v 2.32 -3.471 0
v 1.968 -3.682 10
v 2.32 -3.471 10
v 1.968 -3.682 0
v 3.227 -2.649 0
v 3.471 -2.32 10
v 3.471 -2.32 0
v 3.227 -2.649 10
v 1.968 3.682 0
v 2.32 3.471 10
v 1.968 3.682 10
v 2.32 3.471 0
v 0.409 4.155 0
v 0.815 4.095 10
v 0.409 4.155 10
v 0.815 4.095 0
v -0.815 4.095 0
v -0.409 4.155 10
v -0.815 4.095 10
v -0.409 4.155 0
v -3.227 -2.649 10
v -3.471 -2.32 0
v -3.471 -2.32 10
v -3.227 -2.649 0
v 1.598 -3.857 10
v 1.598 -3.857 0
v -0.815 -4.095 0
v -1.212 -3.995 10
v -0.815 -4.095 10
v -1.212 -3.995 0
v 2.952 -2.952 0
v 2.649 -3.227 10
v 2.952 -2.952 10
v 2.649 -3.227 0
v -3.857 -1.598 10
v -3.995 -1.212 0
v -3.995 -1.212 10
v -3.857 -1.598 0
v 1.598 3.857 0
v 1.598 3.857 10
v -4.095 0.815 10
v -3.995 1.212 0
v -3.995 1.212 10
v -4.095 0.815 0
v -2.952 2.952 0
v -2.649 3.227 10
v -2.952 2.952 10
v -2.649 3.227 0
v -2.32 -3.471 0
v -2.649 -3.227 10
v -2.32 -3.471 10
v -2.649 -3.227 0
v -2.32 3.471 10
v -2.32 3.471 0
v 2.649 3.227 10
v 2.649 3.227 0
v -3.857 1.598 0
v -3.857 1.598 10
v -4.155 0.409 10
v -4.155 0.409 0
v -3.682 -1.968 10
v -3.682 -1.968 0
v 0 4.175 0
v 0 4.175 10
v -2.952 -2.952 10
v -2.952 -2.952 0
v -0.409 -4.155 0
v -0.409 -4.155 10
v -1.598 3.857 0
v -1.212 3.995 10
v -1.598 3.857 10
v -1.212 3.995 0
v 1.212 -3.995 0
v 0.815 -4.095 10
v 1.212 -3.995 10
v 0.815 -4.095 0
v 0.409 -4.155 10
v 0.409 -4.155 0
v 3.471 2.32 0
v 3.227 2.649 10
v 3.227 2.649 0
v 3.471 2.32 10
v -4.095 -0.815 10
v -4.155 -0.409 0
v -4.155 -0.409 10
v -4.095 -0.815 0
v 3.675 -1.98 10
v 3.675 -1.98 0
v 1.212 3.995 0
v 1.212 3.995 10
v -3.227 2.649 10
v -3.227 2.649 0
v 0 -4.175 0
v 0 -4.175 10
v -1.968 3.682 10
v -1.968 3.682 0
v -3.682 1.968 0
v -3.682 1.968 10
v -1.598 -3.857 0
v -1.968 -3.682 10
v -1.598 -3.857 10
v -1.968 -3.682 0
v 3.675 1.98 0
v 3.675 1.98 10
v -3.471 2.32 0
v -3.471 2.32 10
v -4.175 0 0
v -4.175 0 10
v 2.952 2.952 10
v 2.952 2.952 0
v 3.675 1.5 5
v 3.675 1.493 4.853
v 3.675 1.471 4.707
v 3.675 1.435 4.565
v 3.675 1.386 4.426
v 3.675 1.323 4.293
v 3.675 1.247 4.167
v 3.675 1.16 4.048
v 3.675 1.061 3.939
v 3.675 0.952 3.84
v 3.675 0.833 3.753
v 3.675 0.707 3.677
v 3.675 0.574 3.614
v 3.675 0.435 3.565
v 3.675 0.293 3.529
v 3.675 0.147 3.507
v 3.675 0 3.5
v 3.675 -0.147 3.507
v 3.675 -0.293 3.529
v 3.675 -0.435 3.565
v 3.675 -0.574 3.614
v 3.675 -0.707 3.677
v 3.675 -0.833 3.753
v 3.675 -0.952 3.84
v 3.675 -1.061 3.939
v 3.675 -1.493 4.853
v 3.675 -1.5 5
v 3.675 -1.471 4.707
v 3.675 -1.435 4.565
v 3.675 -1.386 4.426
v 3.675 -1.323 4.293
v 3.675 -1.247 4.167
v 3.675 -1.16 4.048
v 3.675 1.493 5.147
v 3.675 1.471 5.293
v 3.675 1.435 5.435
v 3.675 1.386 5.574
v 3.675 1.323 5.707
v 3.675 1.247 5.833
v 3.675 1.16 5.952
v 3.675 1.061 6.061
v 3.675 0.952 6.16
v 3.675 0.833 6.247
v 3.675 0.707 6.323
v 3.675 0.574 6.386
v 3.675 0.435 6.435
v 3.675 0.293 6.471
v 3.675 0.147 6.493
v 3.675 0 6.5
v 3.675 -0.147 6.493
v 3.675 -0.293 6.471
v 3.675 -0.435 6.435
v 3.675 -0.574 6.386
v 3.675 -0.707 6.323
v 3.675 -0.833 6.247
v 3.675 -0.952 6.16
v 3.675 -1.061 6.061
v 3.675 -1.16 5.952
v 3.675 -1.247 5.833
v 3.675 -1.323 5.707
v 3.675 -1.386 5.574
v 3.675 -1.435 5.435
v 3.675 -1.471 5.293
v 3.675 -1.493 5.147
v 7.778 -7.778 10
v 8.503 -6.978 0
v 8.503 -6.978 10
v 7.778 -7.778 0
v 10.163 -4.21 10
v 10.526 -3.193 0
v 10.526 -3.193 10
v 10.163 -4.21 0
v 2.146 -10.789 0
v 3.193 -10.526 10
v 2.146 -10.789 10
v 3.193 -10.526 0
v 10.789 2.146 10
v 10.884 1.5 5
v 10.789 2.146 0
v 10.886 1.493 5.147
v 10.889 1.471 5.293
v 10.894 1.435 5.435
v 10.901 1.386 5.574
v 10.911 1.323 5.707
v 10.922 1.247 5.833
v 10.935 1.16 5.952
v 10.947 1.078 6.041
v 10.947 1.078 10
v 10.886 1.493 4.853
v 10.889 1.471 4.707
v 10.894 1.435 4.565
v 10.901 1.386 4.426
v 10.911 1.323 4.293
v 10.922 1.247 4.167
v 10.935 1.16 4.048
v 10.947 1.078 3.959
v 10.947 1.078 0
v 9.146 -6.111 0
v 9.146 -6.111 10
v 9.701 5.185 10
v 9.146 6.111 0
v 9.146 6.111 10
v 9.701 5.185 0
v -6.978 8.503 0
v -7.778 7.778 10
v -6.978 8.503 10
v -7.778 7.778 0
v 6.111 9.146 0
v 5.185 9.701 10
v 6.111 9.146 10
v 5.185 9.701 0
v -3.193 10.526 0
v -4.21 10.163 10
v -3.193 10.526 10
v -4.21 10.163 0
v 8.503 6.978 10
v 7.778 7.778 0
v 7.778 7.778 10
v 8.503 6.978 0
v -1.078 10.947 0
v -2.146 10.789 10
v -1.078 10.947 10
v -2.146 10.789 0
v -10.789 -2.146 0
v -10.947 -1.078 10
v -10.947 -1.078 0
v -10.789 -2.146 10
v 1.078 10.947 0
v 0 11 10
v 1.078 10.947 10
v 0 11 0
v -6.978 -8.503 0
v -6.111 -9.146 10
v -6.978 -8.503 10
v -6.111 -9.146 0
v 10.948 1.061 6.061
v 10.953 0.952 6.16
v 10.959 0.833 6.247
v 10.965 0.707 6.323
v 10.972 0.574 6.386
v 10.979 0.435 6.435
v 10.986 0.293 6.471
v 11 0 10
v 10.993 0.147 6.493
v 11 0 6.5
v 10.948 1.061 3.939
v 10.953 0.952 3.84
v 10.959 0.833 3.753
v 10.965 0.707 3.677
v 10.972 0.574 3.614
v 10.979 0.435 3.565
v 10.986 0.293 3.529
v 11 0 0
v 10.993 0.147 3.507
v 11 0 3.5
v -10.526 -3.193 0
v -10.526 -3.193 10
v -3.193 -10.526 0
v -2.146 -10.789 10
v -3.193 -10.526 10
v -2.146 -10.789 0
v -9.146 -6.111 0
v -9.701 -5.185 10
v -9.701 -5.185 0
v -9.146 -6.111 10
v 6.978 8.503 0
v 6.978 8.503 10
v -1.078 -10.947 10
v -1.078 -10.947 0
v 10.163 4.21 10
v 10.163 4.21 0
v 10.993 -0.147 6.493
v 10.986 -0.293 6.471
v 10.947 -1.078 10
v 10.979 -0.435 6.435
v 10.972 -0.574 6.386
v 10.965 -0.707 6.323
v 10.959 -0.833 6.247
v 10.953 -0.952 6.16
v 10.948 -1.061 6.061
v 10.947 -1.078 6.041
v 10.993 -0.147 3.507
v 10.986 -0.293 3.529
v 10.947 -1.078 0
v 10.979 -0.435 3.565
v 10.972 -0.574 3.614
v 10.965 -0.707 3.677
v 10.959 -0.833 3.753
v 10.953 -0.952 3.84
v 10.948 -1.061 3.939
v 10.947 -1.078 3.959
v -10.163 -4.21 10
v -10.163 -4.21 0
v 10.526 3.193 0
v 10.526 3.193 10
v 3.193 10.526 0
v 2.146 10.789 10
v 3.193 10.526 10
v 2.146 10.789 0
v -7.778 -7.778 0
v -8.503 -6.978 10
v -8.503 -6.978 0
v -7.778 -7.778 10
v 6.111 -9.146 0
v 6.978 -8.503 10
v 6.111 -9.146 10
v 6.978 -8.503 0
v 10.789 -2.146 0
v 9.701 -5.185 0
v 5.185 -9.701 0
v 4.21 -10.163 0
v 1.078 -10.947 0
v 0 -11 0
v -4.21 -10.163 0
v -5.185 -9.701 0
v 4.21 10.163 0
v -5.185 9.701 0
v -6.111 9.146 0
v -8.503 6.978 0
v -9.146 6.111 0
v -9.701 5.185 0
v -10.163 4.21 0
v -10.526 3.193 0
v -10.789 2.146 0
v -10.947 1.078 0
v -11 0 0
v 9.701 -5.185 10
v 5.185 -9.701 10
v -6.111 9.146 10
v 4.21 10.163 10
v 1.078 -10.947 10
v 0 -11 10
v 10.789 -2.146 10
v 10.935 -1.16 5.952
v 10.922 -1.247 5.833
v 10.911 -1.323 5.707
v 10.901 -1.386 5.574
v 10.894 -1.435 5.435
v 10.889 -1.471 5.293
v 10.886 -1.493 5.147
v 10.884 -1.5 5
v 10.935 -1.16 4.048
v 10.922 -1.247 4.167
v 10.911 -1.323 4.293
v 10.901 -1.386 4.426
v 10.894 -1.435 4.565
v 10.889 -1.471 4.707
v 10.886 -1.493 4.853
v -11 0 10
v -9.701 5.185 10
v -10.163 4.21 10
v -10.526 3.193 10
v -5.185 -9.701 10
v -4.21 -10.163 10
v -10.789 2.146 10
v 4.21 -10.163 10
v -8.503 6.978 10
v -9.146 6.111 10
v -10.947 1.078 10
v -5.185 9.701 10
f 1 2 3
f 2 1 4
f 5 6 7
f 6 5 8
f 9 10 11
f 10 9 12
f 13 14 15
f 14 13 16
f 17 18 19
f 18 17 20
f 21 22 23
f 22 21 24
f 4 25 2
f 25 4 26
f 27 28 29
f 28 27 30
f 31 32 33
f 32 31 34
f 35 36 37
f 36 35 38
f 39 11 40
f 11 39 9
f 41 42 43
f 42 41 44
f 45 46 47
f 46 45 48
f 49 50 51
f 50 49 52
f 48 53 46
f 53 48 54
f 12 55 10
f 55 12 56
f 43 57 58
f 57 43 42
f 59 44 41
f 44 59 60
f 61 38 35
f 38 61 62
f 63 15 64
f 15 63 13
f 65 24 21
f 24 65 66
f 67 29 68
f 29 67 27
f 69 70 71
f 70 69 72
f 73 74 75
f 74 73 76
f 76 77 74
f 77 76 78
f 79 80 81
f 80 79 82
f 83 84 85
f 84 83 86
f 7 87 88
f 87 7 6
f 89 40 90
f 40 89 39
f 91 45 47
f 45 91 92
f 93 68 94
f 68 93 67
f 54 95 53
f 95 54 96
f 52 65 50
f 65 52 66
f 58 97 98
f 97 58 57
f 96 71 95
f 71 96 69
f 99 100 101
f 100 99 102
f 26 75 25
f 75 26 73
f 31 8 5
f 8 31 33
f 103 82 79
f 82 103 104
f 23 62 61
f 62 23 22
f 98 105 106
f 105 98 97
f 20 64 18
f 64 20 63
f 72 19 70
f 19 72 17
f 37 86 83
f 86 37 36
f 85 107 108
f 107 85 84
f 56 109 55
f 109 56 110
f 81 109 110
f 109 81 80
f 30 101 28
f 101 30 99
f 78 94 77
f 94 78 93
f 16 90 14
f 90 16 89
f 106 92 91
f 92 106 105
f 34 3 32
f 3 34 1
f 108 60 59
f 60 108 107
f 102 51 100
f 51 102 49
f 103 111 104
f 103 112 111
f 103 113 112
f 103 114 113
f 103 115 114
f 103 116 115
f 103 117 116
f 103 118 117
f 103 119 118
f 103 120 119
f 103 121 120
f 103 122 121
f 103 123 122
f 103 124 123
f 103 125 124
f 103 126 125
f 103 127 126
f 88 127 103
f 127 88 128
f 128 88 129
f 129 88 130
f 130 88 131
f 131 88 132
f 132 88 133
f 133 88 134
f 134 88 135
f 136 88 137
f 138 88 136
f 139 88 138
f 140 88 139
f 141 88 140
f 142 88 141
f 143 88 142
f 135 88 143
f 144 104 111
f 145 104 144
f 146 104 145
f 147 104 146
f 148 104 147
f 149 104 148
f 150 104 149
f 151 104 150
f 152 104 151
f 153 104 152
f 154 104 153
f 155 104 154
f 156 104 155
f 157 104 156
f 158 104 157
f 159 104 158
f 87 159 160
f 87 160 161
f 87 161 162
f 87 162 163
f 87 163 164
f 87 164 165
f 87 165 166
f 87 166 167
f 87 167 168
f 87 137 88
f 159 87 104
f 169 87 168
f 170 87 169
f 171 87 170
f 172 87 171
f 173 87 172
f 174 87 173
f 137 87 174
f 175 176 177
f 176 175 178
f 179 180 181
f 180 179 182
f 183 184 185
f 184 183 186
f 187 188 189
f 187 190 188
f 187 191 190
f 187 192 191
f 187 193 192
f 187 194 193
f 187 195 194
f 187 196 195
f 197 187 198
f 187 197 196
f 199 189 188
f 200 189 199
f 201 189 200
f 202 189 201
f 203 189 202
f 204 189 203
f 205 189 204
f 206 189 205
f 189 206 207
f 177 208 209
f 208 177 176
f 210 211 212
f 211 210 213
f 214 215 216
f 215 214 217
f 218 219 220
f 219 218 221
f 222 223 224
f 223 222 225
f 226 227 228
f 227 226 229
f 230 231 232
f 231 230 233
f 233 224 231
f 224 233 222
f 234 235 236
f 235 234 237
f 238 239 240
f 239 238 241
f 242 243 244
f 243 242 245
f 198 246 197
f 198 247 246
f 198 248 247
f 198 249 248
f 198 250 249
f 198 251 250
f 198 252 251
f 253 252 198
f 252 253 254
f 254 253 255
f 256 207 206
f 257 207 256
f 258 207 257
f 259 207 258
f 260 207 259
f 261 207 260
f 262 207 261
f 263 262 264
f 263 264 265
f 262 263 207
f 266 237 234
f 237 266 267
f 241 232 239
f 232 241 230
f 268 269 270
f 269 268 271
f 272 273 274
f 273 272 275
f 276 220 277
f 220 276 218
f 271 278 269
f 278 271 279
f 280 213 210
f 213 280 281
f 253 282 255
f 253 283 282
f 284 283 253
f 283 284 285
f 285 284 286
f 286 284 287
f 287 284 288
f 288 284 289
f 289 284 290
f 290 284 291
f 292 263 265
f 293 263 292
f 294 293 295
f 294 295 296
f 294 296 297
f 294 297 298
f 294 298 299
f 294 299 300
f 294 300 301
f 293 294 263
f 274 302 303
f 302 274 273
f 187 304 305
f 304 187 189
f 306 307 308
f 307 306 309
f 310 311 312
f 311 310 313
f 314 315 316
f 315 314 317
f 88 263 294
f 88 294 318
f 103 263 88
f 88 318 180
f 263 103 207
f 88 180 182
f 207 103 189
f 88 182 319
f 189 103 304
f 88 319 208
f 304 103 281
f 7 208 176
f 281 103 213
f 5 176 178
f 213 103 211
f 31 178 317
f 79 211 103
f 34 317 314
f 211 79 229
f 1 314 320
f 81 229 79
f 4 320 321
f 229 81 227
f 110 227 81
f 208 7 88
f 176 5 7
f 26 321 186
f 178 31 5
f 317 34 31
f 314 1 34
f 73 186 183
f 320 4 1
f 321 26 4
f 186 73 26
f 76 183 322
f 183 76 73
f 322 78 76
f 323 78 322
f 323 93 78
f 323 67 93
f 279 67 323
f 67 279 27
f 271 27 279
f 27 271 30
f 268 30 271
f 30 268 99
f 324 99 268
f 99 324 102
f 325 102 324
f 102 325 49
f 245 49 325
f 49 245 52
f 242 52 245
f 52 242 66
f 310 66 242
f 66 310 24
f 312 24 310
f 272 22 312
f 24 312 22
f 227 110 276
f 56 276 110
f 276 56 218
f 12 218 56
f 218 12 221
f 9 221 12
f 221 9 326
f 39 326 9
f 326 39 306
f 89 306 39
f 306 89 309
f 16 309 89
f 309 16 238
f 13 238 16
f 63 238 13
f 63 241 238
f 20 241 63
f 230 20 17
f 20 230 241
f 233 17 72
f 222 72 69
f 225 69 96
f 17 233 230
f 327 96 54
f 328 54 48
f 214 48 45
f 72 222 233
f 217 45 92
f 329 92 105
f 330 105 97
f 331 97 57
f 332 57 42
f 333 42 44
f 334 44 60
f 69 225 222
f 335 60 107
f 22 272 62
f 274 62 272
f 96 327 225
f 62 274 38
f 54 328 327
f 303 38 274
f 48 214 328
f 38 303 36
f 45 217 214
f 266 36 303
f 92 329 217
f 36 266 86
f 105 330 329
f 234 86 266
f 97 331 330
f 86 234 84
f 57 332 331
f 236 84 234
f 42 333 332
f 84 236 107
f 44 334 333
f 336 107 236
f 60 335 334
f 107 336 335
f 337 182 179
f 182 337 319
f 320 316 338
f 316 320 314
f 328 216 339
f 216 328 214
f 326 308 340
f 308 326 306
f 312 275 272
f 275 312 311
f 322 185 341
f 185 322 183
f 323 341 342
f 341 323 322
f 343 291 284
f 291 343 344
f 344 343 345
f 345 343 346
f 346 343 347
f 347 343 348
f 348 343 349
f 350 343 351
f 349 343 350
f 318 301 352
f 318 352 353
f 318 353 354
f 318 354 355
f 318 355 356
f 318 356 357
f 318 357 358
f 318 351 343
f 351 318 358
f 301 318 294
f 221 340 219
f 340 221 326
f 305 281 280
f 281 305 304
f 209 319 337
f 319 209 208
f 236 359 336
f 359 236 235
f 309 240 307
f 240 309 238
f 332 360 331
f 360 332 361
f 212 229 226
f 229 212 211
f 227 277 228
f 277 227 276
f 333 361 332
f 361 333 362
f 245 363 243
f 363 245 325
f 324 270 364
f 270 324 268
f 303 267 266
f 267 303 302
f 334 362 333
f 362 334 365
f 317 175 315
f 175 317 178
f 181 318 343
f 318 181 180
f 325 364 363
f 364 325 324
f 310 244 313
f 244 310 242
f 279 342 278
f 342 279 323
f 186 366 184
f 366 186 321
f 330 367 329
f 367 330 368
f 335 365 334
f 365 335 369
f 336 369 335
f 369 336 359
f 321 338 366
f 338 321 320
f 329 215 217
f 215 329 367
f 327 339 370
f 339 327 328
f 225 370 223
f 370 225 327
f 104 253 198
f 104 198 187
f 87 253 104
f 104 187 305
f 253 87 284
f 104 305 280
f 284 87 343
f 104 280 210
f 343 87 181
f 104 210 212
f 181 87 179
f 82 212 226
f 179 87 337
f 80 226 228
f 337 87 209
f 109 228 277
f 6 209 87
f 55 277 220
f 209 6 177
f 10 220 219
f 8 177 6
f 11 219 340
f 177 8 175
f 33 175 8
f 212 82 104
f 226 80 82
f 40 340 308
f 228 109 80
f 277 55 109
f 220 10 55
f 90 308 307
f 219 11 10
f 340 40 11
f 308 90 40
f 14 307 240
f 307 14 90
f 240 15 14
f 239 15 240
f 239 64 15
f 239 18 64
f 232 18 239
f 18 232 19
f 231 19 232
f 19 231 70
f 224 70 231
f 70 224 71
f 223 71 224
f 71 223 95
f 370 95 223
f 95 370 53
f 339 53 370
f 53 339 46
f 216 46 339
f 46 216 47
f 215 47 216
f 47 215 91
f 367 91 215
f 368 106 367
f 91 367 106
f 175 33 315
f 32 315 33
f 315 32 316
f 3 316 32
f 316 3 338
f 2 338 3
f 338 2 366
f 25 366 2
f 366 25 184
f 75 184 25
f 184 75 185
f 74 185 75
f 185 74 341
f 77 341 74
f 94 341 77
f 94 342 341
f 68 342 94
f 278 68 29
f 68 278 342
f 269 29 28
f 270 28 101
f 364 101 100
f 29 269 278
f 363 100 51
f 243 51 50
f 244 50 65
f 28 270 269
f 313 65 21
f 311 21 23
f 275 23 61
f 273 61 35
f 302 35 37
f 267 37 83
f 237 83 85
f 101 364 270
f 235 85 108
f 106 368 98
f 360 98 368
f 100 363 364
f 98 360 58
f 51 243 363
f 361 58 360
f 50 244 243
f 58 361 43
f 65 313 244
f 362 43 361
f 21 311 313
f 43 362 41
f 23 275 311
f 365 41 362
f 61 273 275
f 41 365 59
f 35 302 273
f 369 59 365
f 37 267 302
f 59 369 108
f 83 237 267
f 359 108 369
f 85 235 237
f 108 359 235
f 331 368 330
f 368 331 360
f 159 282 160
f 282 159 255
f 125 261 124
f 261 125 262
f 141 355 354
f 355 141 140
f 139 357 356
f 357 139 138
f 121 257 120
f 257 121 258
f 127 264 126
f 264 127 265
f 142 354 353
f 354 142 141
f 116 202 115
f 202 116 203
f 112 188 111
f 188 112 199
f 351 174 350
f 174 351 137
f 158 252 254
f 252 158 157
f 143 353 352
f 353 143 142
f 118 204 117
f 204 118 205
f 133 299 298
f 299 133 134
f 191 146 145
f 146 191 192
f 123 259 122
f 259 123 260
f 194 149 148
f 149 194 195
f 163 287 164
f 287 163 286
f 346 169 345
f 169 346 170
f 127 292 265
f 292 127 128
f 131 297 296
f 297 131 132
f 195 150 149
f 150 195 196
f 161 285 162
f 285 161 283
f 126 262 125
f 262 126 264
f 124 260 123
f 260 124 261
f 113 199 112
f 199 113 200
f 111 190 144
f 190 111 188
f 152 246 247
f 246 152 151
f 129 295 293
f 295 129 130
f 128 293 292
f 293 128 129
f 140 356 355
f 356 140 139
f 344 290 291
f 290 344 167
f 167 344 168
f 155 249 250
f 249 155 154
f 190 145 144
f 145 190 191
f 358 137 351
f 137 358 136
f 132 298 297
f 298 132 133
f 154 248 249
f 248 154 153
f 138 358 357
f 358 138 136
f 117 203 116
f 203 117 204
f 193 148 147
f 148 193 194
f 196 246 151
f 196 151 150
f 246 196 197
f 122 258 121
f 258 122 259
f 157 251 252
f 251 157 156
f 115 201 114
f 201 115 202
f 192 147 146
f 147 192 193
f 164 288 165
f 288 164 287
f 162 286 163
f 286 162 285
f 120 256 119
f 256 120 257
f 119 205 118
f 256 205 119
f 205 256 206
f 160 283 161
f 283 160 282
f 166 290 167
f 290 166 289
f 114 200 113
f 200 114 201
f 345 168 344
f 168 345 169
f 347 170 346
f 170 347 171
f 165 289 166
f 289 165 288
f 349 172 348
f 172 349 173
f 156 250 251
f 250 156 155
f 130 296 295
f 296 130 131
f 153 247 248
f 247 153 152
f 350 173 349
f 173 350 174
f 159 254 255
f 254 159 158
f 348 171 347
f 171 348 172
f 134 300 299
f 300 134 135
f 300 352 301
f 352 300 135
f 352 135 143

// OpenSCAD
// Gen-CY — shaft collar with D-flat bore (set screw bears on the flat); print x4
include <parameters.scad>;
$fn = 64;
// D-flat keyed bore: flat faces +X (angle 0 = magnet pocket 0 = index notch)
module dflat_bore(h) {
    intersection() {
        cylinder(d=shaft_bore, h=h);
        translate([-shaft_bore, -shaft_bore, 0]) cube([shaft_bore + dflat_x, 2*shaft_bore, h]);
    }
}

od = 22; h = collar_h; set_d = 3.0;
difference() {
    cylinder(d=od, h=h);
    translate([0, 0, -0.1]) dflat_bore(h + 0.2);
    translate([0, 0, h/2]) rotate([0, 90, 0]) cylinder(d=set_d, h=od);
}
